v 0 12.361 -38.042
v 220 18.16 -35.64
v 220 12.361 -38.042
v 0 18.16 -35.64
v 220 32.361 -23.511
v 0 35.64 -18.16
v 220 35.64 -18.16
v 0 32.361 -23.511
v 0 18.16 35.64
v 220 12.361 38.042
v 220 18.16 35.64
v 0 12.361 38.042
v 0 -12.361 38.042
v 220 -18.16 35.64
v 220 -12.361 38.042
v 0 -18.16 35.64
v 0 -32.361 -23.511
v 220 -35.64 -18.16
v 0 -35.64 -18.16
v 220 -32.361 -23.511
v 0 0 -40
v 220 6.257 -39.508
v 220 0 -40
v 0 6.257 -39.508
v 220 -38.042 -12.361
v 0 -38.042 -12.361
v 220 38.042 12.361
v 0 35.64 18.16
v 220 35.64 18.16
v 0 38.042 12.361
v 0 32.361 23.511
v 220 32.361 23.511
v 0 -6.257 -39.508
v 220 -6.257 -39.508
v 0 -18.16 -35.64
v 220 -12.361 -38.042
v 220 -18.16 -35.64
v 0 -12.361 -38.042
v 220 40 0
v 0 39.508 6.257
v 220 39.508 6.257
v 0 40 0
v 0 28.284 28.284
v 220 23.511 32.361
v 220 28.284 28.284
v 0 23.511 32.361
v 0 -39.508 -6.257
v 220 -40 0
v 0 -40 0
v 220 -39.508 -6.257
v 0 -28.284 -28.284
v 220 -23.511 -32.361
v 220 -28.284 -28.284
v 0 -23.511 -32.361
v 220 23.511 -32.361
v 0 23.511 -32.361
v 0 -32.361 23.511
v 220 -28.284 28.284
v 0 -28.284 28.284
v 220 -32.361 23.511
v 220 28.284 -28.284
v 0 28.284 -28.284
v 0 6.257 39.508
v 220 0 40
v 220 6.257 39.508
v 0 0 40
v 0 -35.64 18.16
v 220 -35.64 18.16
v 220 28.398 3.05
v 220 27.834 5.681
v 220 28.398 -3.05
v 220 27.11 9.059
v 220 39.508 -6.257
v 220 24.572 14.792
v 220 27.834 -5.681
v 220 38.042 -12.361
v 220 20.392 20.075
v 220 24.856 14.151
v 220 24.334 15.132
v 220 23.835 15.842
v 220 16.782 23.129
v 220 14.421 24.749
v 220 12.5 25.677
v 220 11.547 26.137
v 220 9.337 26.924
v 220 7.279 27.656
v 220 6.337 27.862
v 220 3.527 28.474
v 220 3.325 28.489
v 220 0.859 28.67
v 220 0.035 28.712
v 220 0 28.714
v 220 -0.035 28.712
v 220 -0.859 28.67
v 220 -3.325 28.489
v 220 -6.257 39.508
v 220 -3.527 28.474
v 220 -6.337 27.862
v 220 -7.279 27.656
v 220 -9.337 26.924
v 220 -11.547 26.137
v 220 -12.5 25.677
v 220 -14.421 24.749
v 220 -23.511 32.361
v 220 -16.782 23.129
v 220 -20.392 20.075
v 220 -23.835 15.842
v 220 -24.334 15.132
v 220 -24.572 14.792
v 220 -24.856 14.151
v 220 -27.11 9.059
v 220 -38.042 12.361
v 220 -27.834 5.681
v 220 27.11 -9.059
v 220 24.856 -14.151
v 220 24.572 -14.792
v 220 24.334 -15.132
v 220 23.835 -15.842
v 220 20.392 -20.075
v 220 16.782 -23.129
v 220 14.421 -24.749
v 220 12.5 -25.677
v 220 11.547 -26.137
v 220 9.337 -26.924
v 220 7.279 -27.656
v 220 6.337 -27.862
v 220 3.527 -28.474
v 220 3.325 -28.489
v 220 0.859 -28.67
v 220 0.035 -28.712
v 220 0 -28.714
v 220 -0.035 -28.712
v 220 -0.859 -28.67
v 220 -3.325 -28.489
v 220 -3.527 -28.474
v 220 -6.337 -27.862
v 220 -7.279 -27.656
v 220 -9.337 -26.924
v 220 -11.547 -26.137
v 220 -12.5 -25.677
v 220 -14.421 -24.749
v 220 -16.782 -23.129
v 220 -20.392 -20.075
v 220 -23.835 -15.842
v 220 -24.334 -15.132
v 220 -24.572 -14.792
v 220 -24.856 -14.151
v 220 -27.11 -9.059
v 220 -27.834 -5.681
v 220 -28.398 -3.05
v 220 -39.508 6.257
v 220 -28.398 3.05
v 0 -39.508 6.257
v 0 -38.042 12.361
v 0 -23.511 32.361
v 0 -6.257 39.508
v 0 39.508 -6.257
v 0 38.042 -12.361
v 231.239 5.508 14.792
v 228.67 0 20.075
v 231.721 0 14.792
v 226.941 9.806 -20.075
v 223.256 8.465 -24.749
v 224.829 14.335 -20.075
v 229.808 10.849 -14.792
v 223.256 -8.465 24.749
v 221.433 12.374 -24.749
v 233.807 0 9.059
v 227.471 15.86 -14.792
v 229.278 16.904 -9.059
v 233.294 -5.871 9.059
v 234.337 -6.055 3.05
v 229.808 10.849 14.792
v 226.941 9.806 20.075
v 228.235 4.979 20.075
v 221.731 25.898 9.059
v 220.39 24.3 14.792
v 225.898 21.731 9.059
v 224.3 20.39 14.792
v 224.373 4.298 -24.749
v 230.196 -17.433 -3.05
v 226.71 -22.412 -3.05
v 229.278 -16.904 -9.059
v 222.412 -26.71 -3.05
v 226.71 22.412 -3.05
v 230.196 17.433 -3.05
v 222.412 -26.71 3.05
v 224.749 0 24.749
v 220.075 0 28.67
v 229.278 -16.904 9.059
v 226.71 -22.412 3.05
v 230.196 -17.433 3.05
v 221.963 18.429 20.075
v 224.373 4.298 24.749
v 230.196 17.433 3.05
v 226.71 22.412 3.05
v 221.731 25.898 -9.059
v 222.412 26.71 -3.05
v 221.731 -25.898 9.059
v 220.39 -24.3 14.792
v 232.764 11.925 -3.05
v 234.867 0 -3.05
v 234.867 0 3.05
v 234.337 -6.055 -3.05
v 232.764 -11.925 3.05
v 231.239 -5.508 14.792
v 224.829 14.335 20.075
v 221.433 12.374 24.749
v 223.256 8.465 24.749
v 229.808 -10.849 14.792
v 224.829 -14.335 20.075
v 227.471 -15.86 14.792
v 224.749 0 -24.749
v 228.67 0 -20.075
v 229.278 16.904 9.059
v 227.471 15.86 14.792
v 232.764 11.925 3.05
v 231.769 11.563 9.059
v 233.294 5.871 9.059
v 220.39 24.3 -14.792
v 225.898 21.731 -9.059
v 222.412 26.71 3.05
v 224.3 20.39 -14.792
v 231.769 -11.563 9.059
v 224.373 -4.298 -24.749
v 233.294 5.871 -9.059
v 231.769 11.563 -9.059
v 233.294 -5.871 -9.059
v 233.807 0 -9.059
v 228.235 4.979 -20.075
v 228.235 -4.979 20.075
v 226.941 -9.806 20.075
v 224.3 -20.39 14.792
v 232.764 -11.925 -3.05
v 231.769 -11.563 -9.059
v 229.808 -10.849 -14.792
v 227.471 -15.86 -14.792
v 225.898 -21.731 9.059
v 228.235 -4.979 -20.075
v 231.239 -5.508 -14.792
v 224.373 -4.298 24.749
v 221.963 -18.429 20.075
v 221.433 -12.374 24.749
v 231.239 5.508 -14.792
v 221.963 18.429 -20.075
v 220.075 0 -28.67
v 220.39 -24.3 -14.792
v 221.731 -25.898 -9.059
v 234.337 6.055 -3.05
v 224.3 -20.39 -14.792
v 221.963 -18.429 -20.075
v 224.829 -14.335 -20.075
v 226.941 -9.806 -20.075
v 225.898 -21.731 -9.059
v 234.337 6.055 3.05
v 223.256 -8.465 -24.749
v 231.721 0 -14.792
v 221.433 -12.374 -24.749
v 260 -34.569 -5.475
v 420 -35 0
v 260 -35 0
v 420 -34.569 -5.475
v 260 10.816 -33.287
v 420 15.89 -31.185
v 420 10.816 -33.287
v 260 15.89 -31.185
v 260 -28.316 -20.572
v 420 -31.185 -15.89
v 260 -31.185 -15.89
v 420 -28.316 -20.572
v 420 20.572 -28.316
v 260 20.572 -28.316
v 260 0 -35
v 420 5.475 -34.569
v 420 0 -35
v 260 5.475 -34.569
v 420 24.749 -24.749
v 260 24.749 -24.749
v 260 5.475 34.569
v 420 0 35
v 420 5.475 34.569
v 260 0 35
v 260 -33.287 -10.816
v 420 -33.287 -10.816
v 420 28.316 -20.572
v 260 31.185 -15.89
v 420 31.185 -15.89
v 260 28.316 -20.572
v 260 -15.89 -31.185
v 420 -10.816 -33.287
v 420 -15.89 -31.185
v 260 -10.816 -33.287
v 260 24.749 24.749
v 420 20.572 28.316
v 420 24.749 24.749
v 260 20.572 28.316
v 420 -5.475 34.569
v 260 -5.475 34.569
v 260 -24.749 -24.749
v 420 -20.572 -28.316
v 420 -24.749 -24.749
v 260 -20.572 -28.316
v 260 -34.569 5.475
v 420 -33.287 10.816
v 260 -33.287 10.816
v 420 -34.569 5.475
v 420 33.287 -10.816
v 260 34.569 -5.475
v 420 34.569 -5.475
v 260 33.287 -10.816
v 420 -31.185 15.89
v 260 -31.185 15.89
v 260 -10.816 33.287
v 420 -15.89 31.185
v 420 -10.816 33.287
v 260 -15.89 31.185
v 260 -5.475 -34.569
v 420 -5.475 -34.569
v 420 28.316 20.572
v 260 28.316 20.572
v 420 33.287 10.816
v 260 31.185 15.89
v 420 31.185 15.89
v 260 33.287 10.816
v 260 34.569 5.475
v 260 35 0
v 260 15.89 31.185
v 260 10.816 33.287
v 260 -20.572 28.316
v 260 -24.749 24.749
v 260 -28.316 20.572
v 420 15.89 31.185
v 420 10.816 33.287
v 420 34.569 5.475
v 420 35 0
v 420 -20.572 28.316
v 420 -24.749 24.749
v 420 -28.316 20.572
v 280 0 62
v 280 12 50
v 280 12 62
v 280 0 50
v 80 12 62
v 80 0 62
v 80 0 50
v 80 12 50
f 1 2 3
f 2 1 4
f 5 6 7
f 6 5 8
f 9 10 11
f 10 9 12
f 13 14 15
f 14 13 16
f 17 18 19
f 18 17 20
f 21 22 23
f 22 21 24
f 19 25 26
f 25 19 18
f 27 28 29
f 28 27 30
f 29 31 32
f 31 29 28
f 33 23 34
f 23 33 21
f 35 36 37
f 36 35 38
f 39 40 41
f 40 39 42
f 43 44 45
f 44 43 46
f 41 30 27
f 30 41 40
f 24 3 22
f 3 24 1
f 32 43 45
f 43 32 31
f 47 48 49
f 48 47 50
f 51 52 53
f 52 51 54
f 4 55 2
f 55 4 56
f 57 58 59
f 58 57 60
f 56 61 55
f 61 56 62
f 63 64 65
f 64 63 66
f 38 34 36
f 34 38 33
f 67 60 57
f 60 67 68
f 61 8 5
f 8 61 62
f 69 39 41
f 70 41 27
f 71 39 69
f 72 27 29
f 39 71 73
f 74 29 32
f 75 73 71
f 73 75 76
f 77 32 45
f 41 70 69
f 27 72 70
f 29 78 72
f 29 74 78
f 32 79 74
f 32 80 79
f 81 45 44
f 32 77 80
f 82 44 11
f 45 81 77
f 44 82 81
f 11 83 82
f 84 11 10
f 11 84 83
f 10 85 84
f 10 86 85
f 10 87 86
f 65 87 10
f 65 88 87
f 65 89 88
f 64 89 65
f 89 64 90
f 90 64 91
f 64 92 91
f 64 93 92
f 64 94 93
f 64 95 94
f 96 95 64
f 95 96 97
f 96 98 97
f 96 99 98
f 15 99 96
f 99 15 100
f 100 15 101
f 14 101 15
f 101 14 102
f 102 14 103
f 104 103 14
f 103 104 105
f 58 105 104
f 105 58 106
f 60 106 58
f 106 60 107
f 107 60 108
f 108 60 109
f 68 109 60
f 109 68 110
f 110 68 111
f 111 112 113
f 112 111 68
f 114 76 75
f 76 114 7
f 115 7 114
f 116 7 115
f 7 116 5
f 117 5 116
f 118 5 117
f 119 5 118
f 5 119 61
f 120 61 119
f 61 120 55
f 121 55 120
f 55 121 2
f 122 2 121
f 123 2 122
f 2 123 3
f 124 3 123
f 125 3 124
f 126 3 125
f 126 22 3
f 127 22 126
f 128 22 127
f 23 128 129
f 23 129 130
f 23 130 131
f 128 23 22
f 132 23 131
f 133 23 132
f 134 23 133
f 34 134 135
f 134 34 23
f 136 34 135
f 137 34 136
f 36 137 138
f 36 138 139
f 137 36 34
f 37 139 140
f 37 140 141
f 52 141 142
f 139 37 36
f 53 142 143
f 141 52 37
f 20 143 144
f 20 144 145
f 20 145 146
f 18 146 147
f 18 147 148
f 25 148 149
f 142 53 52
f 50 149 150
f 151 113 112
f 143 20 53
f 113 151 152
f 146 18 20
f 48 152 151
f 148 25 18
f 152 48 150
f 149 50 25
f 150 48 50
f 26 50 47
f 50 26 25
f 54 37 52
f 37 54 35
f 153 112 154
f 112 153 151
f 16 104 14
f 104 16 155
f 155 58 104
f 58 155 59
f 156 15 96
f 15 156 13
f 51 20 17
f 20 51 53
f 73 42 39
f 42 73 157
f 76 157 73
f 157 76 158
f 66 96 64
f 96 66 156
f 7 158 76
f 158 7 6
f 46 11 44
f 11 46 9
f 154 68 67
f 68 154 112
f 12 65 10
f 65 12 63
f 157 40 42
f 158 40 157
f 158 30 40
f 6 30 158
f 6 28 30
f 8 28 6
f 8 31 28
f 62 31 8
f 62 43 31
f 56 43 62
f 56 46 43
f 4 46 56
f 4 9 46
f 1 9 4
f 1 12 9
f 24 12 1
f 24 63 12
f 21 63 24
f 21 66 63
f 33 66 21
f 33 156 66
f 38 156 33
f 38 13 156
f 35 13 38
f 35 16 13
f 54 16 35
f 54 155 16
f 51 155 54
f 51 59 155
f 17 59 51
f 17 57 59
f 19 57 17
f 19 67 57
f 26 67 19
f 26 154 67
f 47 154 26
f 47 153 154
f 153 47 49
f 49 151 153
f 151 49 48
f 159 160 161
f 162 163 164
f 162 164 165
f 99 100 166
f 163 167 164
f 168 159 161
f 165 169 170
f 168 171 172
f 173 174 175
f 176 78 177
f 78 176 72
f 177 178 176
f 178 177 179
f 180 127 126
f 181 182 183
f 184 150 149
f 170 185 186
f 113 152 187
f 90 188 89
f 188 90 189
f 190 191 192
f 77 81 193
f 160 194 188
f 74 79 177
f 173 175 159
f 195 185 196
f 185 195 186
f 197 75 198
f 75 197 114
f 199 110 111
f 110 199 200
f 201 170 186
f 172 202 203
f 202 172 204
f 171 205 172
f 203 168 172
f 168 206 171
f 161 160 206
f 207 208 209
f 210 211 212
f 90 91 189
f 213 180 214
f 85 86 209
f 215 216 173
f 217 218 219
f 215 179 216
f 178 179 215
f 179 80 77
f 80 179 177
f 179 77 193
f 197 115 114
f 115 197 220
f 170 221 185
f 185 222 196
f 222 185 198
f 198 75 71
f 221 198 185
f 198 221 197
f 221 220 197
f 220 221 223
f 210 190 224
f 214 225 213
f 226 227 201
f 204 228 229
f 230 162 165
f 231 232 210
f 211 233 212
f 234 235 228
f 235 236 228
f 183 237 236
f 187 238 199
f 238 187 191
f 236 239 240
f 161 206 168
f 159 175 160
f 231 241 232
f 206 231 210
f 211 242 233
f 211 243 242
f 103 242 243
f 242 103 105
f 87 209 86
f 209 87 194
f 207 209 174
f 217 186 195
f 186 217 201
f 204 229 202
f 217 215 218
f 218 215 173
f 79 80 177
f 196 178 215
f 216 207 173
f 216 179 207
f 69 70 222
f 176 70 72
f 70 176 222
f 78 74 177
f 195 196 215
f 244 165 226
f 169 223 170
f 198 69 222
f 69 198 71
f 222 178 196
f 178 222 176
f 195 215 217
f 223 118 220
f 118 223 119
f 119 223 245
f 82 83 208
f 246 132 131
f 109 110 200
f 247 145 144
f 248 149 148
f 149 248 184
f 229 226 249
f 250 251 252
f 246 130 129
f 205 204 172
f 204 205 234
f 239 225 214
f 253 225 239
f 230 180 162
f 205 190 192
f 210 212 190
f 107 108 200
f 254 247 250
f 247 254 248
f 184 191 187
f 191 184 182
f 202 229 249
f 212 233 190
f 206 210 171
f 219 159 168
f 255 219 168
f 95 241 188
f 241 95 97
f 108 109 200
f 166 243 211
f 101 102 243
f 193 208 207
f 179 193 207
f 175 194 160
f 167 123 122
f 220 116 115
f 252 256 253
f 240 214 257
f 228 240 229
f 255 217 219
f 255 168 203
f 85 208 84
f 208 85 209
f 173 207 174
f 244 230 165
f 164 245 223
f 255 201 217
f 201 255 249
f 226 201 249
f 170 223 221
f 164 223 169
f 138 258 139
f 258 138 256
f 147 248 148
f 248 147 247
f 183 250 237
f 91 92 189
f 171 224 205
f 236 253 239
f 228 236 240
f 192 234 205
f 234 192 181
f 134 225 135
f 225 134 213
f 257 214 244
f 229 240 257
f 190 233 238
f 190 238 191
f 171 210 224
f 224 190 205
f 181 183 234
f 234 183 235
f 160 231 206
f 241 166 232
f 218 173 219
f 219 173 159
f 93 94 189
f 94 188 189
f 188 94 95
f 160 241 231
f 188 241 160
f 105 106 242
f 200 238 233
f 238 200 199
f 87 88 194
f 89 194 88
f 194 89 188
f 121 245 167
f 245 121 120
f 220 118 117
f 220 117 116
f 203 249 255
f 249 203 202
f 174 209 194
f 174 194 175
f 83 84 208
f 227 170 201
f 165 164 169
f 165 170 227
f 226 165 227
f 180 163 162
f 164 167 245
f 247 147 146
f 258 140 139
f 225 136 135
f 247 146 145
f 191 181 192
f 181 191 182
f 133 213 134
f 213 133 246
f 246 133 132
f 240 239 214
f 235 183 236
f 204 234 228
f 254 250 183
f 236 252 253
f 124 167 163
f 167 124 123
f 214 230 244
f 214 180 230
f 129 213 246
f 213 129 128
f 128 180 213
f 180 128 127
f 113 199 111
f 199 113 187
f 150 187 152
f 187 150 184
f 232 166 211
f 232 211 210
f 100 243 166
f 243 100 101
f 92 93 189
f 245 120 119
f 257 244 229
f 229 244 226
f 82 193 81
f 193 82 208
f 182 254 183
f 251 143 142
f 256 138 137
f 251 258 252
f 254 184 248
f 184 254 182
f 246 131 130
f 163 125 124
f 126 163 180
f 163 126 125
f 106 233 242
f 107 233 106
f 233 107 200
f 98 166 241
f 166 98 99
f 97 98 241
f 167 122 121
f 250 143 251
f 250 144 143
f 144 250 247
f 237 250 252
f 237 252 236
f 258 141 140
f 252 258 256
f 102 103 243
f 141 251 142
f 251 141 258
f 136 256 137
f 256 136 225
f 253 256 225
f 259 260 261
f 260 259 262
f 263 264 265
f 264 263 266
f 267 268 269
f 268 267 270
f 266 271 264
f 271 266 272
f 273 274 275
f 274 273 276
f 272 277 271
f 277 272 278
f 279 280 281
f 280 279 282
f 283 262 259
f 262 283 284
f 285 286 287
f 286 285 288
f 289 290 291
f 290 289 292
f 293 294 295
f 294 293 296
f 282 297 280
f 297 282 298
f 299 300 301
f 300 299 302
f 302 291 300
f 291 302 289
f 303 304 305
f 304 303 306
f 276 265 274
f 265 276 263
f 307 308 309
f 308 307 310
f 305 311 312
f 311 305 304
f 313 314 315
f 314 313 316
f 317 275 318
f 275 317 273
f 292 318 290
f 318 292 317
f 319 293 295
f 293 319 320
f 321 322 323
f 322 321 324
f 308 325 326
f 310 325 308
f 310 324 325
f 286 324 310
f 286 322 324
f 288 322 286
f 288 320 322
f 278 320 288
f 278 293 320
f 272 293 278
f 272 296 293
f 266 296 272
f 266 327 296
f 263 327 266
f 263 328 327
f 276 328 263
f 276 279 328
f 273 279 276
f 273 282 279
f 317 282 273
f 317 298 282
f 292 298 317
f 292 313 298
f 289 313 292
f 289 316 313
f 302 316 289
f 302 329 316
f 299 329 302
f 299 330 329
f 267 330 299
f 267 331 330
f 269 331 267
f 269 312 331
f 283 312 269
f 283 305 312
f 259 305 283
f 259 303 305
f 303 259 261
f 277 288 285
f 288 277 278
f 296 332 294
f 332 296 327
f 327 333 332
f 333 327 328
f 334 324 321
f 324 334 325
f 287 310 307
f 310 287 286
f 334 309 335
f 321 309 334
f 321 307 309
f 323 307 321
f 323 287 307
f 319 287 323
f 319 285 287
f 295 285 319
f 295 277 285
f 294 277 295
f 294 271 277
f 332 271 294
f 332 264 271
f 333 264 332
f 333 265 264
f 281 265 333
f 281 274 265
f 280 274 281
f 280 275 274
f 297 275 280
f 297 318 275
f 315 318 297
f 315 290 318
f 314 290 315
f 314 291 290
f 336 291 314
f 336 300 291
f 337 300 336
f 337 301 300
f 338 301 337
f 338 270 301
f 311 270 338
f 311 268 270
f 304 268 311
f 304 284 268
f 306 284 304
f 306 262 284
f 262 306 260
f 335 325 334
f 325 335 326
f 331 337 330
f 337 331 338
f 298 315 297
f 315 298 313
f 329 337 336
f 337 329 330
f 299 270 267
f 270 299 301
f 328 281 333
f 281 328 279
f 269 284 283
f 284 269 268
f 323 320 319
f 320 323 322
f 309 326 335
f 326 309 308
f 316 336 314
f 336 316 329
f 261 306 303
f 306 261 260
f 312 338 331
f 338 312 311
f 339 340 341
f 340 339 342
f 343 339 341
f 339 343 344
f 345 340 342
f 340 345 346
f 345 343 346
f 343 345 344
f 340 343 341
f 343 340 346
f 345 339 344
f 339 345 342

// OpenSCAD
// ISM-SSN-1 station module + structural study — #42
// Units: mm. Habitat + node + truss + ghost berthing rings / board tray.
// No weapons geometry.

module habitat() {
    translate([0, 0, 0])
        rotate([0, 90, 0])
            cylinder(h = 220, d = 80, $fn = 40);
}

module node() {
    translate([200, 0, 0])
        sphere(d = 70, $fn = 36);
}

module lab() {
    translate([260, 0, 0])
        rotate([0, 90, 0])
            cylinder(h = 160, d = 70, $fn = 40);
}

module truss() {
    translate([80, 0, 50])
        cube([200, 12, 12], center = false);
}

module berthing_rings() {
    // Node port stubs — berthing mass/volume only
    for (a = [0, 90, 180, 270])
        rotate([a, 0, 0])
            translate([200, 0, 28])
                rotate([0, 90, 0])
                    cylinder(h = 6, d = 36, center = true, $fn = 28);
}

module truss_longerons() {
    for (y = [-8, 8])
        translate([80, y, 56])
            cube([200, 3, 3]);
}

module hab_board_tray() {
    translate([60, -20, -10])
        cube([50, 40, 4]);
}

module docking_keepouts() {
    translate([200, 40, 0])
        cube([30, 20, 20], center = true);
}

echo("#42: space-station structural study — shells/rings/truss; no weapons solids");
habitat();
node();
lab();
truss();
%berthing_rings();
%truss_longerons();
%hab_board_tray();
%docking_keepouts();
